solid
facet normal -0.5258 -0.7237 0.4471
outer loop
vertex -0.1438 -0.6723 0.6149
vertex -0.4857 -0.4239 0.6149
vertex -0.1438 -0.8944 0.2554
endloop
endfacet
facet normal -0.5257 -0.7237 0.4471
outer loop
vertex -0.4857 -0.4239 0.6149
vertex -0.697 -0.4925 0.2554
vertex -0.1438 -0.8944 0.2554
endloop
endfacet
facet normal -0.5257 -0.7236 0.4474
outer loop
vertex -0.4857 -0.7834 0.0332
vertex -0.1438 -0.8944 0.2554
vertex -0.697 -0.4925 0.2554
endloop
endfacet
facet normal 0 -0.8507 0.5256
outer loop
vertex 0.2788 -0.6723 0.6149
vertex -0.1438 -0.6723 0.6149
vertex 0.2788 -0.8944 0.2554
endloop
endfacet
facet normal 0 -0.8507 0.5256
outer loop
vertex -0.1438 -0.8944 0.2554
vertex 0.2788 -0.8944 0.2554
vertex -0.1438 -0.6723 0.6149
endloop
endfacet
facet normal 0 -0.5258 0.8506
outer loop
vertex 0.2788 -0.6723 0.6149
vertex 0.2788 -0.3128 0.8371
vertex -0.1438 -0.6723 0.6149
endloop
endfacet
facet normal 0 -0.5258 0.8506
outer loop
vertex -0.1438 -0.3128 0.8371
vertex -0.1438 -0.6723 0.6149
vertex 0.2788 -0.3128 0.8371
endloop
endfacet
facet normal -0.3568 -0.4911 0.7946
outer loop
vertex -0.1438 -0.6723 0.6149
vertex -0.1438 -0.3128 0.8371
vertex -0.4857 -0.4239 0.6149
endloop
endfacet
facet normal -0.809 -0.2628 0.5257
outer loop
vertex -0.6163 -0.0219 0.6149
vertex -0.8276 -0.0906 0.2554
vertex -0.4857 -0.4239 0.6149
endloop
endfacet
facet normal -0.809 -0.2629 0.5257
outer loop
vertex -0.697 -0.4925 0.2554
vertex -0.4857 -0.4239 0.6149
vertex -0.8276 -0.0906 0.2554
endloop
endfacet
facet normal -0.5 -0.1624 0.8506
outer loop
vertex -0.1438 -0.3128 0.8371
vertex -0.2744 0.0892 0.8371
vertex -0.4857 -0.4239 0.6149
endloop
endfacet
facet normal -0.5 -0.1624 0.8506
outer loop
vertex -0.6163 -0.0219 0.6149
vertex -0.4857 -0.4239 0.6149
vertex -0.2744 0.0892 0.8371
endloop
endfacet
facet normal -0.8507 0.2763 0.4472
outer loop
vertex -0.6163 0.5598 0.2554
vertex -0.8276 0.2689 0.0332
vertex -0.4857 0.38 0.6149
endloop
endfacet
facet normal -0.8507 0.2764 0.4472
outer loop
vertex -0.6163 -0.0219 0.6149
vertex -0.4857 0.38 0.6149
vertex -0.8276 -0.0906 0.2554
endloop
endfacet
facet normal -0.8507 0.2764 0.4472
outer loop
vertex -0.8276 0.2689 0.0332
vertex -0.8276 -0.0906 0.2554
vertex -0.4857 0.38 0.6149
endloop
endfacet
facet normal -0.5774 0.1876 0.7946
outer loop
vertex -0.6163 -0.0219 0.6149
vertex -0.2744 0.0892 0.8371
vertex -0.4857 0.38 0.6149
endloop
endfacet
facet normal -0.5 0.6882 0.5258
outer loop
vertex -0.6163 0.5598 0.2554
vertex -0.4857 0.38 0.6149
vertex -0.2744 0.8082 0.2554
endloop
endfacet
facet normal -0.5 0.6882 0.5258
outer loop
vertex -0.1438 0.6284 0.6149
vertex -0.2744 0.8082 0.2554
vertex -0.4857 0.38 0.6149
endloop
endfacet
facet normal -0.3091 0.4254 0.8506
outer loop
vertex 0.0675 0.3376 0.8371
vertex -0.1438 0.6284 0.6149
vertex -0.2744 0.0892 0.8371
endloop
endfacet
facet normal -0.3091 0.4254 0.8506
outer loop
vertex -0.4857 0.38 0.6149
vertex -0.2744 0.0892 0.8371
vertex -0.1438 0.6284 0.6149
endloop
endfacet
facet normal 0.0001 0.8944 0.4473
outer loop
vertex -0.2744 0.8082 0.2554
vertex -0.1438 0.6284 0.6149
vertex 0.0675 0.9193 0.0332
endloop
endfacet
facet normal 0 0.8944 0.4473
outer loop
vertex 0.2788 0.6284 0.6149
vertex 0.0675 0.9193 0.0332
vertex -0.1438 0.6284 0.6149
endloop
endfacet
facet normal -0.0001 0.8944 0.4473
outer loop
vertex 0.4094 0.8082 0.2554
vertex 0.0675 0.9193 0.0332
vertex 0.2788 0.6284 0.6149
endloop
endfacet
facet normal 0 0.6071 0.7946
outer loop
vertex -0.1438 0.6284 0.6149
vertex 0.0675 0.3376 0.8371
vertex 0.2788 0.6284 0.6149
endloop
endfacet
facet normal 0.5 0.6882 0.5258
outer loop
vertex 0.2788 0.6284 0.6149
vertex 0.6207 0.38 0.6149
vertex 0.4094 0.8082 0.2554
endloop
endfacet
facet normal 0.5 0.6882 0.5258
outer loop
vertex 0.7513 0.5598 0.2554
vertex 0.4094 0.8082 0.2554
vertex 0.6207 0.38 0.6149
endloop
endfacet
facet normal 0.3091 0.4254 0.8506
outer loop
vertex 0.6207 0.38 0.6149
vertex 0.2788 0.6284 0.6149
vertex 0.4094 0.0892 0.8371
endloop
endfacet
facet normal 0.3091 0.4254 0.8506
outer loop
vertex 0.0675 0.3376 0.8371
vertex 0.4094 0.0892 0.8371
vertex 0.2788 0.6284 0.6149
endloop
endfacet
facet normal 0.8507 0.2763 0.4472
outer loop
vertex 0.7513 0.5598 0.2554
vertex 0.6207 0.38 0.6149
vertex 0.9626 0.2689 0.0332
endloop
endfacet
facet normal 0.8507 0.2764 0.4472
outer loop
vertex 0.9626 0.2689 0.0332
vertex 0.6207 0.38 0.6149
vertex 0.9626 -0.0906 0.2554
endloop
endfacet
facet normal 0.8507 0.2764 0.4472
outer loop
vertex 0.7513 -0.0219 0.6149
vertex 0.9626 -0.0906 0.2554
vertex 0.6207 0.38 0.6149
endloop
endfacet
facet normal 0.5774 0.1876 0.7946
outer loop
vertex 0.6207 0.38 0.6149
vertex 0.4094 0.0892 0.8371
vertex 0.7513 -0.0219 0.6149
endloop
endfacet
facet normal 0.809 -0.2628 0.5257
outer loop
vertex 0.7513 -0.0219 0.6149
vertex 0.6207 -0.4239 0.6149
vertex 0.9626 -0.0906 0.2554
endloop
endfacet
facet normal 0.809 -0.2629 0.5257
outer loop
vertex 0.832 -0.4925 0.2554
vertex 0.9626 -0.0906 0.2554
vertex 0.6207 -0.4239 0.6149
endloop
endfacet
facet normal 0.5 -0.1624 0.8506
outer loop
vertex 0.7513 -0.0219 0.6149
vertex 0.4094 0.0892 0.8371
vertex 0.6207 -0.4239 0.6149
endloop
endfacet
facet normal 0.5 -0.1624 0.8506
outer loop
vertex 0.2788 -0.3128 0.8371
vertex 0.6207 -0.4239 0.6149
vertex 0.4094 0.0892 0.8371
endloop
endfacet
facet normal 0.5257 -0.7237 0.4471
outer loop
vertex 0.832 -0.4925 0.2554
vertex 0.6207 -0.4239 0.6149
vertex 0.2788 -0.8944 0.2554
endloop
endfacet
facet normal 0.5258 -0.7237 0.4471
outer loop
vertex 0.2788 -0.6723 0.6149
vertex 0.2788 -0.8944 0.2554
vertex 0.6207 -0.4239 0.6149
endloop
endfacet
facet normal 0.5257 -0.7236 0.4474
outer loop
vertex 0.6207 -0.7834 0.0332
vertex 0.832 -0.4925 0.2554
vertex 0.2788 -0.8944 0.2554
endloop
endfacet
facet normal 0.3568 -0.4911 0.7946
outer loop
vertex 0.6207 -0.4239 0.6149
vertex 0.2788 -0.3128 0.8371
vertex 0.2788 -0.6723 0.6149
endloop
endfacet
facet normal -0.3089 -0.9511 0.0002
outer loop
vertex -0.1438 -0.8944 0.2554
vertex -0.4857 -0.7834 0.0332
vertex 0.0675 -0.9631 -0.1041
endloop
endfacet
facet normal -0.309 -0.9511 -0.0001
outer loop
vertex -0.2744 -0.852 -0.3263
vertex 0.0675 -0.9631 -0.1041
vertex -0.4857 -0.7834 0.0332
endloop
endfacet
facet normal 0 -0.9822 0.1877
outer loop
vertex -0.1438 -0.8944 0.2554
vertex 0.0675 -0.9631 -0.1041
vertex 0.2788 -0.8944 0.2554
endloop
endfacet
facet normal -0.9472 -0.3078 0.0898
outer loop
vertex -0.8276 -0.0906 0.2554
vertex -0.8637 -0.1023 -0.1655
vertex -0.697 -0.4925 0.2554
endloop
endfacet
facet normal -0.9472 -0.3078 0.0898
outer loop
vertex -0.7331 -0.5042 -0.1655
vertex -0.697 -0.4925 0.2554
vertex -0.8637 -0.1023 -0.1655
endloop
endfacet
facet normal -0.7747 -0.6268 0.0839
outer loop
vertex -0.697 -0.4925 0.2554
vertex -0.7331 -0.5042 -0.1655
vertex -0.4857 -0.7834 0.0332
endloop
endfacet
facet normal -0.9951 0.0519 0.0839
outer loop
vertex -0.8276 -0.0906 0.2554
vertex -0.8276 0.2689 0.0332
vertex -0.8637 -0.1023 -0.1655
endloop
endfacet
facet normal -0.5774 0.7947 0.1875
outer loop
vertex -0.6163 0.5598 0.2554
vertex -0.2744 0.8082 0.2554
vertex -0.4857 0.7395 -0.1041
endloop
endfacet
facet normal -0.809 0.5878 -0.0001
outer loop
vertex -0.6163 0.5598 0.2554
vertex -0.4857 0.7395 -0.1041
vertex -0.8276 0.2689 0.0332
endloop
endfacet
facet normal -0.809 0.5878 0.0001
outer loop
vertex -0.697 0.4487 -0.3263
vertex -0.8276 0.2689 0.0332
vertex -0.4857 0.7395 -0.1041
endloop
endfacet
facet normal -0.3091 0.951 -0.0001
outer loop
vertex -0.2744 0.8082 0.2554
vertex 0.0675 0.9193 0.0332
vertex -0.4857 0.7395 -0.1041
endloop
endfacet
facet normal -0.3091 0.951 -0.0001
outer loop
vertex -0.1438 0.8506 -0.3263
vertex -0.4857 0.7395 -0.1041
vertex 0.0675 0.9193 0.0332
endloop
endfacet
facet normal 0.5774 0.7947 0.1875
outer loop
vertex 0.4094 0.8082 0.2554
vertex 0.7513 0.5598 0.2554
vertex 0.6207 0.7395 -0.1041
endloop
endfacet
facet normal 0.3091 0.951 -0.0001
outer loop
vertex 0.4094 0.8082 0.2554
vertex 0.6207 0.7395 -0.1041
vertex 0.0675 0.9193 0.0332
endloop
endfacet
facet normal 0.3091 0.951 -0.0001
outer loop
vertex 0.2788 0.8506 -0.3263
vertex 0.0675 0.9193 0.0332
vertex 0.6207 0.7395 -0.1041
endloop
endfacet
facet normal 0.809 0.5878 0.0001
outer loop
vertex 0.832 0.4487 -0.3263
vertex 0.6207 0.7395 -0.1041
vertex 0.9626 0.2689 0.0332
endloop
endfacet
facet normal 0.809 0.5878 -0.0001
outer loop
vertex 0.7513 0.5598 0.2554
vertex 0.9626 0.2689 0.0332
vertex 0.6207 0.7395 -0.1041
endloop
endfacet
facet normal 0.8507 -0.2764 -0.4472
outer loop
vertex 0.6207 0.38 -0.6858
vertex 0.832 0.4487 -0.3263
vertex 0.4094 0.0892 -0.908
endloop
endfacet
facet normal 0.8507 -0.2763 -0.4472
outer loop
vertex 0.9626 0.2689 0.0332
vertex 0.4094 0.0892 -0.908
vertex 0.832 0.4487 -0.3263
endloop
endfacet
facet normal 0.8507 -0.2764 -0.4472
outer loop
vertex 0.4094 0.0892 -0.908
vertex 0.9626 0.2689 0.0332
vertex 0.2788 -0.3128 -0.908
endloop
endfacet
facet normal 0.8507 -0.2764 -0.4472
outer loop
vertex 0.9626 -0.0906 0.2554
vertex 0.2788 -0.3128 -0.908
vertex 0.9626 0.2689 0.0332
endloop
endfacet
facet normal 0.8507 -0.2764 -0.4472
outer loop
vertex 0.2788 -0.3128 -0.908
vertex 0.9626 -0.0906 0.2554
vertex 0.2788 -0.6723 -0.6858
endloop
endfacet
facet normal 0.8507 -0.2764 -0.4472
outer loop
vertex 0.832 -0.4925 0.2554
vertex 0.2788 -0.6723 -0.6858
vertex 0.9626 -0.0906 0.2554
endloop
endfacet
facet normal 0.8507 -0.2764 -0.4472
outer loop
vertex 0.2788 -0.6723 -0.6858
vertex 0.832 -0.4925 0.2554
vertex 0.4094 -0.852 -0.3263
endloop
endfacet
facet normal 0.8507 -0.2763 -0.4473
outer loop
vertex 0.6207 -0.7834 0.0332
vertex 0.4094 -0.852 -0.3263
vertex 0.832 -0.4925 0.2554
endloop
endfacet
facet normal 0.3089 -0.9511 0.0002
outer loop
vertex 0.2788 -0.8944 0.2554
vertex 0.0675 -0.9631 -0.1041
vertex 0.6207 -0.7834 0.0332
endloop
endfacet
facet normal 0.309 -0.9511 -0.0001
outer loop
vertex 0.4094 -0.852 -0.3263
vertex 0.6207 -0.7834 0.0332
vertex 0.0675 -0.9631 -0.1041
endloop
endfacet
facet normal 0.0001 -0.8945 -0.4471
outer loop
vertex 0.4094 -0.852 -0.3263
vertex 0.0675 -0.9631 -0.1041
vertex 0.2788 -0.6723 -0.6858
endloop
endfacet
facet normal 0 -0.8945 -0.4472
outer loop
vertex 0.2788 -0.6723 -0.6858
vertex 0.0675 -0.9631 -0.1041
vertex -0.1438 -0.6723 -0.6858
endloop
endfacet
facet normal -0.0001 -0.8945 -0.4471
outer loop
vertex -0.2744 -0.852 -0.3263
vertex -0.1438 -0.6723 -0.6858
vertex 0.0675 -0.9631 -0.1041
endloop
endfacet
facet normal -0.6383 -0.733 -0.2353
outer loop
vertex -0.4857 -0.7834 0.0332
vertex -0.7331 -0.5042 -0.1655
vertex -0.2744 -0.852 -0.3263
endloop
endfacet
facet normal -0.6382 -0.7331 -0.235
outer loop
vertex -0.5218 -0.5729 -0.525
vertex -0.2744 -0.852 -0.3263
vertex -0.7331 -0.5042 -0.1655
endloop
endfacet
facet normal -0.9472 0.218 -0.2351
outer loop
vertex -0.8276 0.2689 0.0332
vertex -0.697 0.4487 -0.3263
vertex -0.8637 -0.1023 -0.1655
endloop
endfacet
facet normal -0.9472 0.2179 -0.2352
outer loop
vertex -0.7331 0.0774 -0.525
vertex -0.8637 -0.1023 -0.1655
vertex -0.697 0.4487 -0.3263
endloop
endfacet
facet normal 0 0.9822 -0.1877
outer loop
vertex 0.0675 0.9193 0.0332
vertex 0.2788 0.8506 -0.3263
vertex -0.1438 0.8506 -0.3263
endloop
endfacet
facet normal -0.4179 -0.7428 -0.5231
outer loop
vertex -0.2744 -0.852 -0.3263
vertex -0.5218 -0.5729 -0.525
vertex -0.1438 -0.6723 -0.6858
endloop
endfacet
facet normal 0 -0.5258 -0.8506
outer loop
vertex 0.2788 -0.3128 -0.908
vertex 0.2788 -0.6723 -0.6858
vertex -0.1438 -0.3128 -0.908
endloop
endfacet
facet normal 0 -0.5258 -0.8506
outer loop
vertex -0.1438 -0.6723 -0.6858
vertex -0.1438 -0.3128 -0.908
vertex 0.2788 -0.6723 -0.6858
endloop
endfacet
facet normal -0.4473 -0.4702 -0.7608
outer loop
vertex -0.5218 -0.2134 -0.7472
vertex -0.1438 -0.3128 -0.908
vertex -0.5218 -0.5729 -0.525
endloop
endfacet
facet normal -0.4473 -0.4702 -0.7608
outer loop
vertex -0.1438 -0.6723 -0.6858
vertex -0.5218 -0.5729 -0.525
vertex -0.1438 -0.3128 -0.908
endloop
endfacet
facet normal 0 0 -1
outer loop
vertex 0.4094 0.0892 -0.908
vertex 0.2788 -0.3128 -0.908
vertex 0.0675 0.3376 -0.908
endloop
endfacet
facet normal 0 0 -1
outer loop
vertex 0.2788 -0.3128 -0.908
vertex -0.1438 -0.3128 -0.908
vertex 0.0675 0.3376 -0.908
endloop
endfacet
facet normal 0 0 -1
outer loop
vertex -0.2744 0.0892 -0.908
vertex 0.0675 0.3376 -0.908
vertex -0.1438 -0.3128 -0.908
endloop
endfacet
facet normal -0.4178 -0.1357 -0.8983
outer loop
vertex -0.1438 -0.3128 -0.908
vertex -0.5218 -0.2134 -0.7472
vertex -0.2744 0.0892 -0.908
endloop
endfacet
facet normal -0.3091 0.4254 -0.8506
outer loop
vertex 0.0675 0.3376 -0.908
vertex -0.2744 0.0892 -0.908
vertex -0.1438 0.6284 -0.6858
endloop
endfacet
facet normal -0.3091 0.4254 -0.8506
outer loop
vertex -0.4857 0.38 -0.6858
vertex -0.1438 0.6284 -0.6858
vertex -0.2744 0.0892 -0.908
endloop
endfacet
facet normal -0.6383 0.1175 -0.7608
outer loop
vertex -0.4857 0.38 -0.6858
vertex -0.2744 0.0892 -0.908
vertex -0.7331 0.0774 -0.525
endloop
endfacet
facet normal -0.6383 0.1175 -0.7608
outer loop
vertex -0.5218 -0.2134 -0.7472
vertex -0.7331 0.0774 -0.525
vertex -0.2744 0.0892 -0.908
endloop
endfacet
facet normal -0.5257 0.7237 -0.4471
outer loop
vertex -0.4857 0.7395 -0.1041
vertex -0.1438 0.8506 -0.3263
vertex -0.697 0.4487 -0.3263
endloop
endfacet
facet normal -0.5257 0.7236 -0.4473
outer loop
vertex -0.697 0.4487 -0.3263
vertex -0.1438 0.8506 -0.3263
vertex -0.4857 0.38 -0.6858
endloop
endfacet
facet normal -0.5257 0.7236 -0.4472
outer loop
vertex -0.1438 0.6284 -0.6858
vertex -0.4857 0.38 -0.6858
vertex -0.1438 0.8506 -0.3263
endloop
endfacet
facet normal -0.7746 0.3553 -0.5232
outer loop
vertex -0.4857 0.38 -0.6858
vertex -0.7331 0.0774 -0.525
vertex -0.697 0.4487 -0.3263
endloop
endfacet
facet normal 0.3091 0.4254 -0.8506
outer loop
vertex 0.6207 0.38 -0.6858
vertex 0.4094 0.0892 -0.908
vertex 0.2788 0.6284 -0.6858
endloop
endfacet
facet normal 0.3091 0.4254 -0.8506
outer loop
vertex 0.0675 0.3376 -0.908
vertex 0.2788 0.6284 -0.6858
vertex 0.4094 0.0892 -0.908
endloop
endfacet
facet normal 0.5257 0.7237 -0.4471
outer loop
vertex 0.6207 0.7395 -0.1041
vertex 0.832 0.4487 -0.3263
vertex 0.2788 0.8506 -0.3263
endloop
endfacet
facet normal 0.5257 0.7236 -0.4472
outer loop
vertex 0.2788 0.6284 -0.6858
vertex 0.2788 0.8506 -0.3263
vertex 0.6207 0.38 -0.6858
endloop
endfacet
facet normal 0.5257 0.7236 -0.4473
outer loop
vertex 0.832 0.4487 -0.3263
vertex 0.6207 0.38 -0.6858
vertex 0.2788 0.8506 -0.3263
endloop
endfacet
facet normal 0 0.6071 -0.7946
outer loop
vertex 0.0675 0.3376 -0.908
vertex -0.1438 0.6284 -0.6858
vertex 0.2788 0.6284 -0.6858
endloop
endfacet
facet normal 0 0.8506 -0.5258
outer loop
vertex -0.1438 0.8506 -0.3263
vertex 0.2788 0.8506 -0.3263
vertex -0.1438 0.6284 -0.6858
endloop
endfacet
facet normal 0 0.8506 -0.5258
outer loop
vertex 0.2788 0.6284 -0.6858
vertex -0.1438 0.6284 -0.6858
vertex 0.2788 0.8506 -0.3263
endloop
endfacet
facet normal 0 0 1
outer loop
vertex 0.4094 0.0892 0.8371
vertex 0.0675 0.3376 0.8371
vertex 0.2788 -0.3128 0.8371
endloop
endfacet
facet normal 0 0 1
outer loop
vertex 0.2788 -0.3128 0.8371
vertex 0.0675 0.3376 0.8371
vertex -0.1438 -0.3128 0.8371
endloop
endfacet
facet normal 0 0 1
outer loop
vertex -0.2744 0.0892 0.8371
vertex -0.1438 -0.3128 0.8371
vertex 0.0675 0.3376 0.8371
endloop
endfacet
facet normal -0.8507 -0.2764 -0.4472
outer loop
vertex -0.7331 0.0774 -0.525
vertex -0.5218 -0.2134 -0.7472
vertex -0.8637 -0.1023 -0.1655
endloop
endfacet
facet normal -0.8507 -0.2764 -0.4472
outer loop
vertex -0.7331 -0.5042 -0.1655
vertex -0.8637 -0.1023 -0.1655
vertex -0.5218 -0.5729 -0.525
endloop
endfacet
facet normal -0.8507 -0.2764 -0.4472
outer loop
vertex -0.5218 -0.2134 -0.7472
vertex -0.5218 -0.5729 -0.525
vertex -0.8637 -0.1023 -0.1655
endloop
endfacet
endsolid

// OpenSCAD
polyhedron( points = [[-0.143834635575421, -0.672264459213423, 0.614867716648656], [-0.48573905623022, -0.423856357057152, 0.614867716648656], [-0.616334923929495, -0.021923604819506, 0.614867716648656], [-0.485739056121952, 0.38000914738296, 0.614867716648656], [-0.143834635517032, 0.628417249409181, 0.614867716648656], [0.278782470125242, 0.628417249371229, 0.614867716648656], [0.620686890685556, 0.380009147283611, 0.614867716648656], [0.751282758420919, -0.0219236049423101, 0.614867716648656], [0.620686890649469, -0.423856357156505, 0.614867716648656], [0.278782470066857, -0.672264459213423, 0.614867716648656], [-0.143834635556447, -0.894447420372426, 0.255368134130056], [-0.697047609037877, -0.492514668038298, 0.255368134121724], [-0.827643476699979, -0.0905819155834908, 0.255368134075137], [-0.616334923778185, 0.559758938677137, 0.255368134107841], [-0.274430503236246, 0.808167040634619, 0.255368134075137], [0.409378337930894, 0.808167040556862, 0.255368134107842], [0.751282758406368, 0.5597589385079, 0.255368134075137], [0.962591311180263, -0.0905819158007837, 0.255368134107841], [0.831995443419357, -0.492514667922348, 0.255368134075137], [0.278782470020141, -0.894447420357841, 0.255368134153656], [0.0674739171407989, -0.963105730609737, -0.104131448555734], [-0.485739056259675, -0.7833559398626, 0.033185173236194], [-0.827643476656661, 0.268917667319282, 0.0331851732030904], [0.0674739173917088, 0.919258521044234, 0.0331851731041979], [0.962591311191213, 0.268917666703998, 0.0331851731041979], [0.620686890540425, -0.783355939657894, 0.0331851731041979], [-0.274430503525425, -0.852014250396151, -0.326314409126157], [-0.143834635809371, -0.672264458732561, -0.685813991485829], [-0.143834635786002, -0.312764875812814, -0.907996952330417], [-0.274430503464244, 0.089167876636746, -0.907996952343062], [-0.485739056184049, 0.380009148380675, -0.685813991518933], [-0.697047608924464, 0.448667458950167, -0.326314409167071], [0.409378337572705, -0.85201424947372, -0.326314409453187], [0.278782469597426, -0.672264457781355, -0.685813991697058], [0.278782469603668, -0.312764876902856, -0.907996952621554], [0.409378337417803, 0.0891678752952494, -0.90799695277695], [0.620686890354042, 0.380009147074648, -0.685813991982945], [0.831995443351751, 0.448667457918681, -0.32631440943408], [0.067473915731321, 0.337575979449356, -0.907996951110115], [-0.143834637358989, 0.628417250558277, -0.68581398964253], [0.278782469777957, 0.628417249284339, -0.685813992075469], [-0.143834635346853, 0.850600209907028, -0.326314409283058], [0.278782470315994, 0.850600210787504, -0.326314409385636], [0.620686890859902, 0.739508730298597, -0.104131448244151], [-0.485739056490946, 0.739508730209607, -0.104131448244151], [-0.143834635180726, -0.31276487646342, 0.837050677279108], [0.278782470047878, -0.312764876621784, 0.837050677511749], [0.40937833778988, 0.0891678755434398, 0.837050677511749], [0.0674739172670375, 0.337575977587922, 0.83705067751175], [-0.274430502919939, 0.0891678756126983, 0.837050677224783], [-0.733143418944545, -0.504242906883651, -0.165541308434043], [-0.863739286744066, -0.102310154908458, -0.165541308443023], [-0.7331434190236, 0.0774396366876538, -0.525040890769389], [-0.521834866333722, -0.213401635026598, -0.747223851554933], [-0.521834866220444, -0.572901217462494, -0.525040890627622]], faces = [[0, 1, 11, 21, 10], [0, 10, 19, 9], [0, 9, 46, 45], [0, 45, 1], [1, 2, 12, 11], [1, 45, 49, 2], [2, 3, 13, 22, 12], [2, 49, 3], [3, 4, 14, 13], [3, 49, 48, 4], [4, 5, 15, 23, 14], [4, 48, 5], [5, 6, 16, 15], [5, 48, 47, 6], [6, 7, 17, 24, 16], [6, 47, 7], [7, 8, 18, 17], [7, 47, 46, 8], [8, 9, 19, 25, 18], [8, 46, 9], [10, 21, 26, 20], [10, 20, 19], [11, 12, 51, 50], [11, 50, 21], [12, 22, 51], [13, 14, 44], [13, 44, 31, 22], [14, 23, 41, 44], [15, 16, 43], [15, 43, 42, 23], [16, 24, 37, 43], [17, 18, 25, 32, 33, 34, 35, 36, 37, 24], [19, 20, 32, 25], [20, 26, 27, 33, 32], [21, 50, 54, 26], [22, 31, 52, 51], [23, 42, 41], [26, 54, 27], [27, 28, 34, 33], [27, 54, 53, 28], [28, 29, 38, 35, 34], [28, 53, 29], [29, 30, 39, 38], [29, 53, 52, 30], [30, 31, 44, 41, 39], [30, 52, 31], [35, 38, 40, 36], [36, 40, 42, 43, 37], [38, 39, 40], [39, 41, 42, 40], [45, 46, 47, 48, 49], [50, 51, 52, 53, 54]]);
